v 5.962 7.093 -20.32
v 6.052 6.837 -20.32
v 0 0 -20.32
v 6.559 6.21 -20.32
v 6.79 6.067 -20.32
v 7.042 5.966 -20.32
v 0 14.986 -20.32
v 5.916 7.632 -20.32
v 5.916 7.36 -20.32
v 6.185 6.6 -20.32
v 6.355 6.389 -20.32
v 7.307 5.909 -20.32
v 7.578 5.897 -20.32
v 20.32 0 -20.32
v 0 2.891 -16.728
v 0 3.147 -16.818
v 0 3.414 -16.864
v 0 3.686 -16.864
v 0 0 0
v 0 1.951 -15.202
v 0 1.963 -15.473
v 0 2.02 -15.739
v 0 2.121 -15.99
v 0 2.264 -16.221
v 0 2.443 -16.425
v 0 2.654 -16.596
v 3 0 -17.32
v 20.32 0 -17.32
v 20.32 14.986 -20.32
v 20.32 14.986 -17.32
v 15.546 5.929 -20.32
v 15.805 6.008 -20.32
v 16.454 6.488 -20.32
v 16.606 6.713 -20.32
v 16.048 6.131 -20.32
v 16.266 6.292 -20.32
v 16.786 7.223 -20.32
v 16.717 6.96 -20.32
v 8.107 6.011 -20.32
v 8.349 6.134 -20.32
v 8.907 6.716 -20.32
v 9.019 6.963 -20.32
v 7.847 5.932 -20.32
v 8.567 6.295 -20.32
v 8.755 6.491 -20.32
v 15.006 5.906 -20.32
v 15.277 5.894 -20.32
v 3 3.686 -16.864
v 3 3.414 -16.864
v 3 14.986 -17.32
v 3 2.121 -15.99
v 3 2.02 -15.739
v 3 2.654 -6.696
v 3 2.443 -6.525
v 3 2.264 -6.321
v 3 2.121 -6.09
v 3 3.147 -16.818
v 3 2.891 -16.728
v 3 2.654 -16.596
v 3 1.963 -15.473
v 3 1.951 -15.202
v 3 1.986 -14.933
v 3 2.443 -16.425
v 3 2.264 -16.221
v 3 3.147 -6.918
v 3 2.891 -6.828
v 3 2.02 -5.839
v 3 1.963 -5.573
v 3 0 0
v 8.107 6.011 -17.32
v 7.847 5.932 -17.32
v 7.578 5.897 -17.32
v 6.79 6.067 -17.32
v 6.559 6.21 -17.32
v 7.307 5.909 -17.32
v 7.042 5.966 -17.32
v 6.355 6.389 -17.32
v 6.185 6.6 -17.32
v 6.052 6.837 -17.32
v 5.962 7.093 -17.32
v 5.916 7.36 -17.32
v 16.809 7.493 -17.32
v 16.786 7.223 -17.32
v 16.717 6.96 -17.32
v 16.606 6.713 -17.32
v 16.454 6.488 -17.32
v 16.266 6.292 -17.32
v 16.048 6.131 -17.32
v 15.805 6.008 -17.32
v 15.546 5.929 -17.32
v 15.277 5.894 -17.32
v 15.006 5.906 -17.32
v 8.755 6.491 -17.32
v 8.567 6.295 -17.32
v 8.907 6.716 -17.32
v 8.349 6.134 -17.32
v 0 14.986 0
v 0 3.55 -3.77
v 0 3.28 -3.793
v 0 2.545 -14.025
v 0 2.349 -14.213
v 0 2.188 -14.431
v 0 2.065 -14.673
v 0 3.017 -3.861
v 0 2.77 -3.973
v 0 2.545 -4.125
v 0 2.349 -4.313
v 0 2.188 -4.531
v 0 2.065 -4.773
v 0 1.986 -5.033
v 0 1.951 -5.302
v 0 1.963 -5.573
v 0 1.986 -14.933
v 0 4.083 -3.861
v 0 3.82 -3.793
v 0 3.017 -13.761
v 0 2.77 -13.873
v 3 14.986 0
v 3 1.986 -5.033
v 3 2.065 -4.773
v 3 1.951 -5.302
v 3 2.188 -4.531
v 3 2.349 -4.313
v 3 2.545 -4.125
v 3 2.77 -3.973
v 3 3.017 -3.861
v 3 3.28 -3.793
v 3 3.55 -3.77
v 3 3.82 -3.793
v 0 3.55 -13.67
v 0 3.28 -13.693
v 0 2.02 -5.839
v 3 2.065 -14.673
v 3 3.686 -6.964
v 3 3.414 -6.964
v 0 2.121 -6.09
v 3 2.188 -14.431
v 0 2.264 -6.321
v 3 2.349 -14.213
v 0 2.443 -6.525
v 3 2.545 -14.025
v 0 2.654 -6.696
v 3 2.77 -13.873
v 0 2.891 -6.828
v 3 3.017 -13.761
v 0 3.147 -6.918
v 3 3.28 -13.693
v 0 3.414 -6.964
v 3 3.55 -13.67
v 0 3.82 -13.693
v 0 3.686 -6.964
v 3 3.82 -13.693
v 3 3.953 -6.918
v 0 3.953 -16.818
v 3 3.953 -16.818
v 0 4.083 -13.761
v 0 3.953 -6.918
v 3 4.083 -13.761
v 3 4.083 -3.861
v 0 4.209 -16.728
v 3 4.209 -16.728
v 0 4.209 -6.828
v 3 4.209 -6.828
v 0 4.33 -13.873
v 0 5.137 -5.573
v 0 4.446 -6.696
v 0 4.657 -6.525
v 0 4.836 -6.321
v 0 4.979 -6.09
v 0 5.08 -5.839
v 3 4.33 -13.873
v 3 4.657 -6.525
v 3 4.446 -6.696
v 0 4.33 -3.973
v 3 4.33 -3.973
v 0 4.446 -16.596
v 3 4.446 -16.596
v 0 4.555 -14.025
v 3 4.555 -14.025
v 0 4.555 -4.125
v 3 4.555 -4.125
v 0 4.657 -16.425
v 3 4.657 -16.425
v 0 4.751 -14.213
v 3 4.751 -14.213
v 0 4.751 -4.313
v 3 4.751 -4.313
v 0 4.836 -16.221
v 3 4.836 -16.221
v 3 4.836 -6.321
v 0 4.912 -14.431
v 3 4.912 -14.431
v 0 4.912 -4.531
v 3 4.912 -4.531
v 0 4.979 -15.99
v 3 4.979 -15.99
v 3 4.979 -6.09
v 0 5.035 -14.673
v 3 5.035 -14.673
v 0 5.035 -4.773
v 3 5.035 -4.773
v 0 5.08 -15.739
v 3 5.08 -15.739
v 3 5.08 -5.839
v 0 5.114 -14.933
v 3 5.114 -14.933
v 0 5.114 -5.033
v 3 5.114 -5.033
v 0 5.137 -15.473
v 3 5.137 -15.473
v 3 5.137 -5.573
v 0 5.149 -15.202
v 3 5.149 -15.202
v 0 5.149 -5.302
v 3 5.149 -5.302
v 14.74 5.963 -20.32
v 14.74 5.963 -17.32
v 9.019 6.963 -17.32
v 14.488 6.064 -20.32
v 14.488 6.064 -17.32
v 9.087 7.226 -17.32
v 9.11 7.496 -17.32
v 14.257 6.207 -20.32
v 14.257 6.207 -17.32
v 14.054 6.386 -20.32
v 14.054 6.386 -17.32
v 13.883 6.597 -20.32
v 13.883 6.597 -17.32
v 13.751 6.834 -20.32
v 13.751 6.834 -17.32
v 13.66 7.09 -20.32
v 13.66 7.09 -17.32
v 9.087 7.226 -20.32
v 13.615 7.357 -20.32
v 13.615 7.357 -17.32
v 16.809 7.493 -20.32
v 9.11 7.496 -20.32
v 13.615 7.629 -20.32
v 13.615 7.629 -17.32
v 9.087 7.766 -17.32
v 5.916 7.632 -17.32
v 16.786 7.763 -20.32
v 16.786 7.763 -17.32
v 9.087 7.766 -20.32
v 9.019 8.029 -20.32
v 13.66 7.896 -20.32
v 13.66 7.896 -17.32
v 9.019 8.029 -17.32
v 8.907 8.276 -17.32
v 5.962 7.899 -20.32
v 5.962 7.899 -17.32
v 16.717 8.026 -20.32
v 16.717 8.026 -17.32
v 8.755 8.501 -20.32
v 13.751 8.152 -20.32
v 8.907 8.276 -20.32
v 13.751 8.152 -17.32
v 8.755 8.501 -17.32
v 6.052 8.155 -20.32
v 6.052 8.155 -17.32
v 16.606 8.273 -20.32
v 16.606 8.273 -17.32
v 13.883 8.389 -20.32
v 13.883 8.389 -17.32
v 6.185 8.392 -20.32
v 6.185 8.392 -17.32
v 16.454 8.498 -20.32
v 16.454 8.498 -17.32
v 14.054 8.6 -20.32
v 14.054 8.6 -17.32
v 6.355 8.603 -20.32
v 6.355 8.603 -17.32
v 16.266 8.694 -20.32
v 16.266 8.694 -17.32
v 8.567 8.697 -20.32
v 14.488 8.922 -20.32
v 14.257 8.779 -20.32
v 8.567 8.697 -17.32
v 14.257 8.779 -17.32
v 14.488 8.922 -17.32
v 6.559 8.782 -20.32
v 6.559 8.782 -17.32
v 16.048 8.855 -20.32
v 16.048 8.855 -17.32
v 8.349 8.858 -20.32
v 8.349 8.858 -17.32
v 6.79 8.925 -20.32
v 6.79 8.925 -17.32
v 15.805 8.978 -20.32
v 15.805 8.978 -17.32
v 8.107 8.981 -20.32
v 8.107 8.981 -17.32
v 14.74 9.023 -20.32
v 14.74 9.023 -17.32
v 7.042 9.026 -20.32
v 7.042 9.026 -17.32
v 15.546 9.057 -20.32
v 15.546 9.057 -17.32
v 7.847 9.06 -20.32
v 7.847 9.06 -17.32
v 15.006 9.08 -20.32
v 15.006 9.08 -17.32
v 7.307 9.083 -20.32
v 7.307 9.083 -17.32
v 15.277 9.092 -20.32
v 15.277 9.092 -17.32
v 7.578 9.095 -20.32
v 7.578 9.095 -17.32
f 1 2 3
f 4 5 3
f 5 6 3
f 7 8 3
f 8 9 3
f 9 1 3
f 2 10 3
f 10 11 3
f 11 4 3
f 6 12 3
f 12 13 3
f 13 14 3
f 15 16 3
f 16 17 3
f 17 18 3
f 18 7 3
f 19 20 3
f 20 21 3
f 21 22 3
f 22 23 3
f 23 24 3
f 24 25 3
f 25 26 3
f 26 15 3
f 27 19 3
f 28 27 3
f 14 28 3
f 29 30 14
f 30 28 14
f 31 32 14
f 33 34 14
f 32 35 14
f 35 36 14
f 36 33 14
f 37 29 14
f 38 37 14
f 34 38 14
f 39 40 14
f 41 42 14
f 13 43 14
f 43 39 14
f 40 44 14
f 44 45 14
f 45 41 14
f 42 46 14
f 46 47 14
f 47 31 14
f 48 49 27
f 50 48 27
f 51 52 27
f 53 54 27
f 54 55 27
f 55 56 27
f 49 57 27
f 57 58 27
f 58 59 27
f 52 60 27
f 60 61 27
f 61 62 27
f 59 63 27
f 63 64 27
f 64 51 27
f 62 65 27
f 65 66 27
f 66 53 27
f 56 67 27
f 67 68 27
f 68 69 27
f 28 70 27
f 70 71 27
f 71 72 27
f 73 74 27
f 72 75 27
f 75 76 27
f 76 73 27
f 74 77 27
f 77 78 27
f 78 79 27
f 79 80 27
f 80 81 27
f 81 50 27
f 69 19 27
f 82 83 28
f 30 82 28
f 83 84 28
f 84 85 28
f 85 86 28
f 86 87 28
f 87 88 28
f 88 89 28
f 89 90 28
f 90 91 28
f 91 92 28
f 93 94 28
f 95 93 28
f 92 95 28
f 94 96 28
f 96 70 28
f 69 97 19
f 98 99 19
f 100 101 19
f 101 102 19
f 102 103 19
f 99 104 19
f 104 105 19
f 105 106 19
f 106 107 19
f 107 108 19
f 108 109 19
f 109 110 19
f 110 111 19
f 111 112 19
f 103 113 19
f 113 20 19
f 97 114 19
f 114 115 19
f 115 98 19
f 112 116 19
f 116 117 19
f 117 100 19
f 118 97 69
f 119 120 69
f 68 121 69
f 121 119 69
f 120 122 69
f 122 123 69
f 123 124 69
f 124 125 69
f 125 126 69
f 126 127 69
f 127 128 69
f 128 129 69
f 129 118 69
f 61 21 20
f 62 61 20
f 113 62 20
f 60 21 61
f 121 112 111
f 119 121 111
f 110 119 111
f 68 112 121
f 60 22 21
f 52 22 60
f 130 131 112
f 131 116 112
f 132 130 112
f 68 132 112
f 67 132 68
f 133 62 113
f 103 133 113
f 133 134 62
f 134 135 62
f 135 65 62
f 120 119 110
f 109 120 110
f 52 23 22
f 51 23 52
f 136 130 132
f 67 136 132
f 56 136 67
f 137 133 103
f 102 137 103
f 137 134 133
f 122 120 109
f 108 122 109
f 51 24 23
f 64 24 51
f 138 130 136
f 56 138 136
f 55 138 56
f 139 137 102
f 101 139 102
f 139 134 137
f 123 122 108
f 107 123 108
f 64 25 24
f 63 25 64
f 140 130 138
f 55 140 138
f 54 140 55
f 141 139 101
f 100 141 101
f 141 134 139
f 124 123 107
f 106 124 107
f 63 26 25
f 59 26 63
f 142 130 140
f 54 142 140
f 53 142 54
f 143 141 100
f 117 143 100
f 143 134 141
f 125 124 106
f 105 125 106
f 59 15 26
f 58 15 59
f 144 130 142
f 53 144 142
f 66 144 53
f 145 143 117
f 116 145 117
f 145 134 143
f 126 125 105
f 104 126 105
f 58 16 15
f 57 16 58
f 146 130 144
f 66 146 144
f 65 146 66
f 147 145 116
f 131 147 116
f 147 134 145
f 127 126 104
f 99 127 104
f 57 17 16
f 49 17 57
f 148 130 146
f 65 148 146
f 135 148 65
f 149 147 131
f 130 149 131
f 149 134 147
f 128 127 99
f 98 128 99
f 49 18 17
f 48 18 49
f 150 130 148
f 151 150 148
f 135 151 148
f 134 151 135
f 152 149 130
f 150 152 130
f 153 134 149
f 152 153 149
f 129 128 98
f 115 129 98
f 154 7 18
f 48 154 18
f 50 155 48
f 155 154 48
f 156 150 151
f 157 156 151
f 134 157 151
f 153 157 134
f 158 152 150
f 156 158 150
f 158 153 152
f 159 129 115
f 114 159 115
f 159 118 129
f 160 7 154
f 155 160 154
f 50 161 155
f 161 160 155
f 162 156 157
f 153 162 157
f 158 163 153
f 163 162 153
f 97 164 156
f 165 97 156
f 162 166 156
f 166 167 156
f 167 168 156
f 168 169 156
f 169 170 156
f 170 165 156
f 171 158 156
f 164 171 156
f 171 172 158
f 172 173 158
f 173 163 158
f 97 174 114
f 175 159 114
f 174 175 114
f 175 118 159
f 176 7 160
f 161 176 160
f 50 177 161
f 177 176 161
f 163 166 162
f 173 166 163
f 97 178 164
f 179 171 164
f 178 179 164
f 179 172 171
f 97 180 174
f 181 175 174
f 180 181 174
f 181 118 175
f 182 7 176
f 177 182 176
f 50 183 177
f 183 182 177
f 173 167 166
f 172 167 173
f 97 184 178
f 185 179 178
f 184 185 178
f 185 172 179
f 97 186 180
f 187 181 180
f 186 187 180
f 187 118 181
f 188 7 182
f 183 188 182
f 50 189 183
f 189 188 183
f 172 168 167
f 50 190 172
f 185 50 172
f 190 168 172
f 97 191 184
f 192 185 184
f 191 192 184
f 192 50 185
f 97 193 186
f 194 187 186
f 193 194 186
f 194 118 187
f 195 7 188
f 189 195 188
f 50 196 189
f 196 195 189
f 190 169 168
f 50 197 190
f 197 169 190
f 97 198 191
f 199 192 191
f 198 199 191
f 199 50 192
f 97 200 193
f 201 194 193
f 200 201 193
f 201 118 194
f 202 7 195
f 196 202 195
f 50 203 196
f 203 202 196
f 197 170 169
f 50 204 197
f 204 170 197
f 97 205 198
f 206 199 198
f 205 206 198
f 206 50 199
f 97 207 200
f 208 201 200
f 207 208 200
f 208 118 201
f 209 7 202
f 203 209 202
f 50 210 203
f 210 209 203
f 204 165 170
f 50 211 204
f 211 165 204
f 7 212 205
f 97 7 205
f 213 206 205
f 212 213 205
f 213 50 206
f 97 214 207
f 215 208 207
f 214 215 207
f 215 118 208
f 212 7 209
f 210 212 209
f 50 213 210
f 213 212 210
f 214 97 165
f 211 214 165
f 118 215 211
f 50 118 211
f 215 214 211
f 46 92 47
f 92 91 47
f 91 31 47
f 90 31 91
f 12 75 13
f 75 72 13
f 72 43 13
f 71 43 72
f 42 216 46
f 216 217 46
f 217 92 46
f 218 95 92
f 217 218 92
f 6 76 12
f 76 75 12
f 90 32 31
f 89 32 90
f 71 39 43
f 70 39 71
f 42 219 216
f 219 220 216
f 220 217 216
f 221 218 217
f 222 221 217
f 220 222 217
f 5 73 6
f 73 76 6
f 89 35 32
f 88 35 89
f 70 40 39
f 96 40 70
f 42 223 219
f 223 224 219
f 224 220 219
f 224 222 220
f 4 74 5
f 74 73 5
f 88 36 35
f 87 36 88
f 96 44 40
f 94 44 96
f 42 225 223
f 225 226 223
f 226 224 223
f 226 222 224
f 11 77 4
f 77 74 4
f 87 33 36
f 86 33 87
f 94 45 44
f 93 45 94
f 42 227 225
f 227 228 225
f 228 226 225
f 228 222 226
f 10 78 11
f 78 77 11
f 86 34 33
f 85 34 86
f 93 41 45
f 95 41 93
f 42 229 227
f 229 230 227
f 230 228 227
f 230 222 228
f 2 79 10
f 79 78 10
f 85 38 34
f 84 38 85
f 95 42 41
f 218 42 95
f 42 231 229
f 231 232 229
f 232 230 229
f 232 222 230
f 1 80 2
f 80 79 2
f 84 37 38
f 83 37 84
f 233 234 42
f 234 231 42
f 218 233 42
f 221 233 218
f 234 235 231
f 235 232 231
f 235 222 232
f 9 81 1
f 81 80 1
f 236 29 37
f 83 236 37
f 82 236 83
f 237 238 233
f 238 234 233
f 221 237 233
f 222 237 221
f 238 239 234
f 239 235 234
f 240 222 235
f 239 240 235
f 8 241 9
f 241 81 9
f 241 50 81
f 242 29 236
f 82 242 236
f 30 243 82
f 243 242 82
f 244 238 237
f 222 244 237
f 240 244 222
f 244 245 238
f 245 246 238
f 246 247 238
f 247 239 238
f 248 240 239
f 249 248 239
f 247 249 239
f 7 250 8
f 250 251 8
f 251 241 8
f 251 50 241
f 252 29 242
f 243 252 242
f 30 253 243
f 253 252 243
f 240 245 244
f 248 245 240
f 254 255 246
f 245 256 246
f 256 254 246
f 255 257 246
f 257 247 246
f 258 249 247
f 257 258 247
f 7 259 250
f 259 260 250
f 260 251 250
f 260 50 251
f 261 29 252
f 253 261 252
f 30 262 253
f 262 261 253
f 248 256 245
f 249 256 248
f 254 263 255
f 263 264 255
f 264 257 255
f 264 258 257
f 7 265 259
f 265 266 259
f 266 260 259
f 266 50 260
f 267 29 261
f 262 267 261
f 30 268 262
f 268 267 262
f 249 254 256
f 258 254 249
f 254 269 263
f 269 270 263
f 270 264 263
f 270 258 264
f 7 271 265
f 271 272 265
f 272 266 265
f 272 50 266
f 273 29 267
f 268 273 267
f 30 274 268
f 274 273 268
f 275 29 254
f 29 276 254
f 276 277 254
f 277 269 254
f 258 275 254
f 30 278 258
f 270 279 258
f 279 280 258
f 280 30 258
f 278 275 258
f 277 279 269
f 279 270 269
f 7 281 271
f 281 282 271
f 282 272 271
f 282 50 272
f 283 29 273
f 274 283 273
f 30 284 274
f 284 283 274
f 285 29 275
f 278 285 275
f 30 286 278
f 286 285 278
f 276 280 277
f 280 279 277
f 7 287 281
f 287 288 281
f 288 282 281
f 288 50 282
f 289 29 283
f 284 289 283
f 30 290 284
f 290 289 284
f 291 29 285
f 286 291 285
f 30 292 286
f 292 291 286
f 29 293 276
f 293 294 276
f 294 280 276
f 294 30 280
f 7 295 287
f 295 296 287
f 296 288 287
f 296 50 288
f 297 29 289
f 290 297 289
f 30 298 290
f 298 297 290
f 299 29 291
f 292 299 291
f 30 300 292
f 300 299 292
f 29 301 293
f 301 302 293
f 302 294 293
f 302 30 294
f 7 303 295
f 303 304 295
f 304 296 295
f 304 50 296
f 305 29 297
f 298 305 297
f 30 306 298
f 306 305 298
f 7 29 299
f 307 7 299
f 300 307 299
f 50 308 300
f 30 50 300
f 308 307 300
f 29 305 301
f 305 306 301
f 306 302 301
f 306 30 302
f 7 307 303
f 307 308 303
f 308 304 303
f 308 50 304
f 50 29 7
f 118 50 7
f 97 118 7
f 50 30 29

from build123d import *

# Parameters (mm, degrees)
BOSS_EXTRUDE1_DEPTH = 14.986
SKETCH2_R           = 1.6
CUT_EXTRUDE1_DEPTH  = 25
SKETCH4_R           = 1.6
CUT_EXTRUDE2_DEPTH  = 25


with BuildPart() as part:
    # Sketch1 → Boss-Extrude1 (new body)
    with BuildSketch(Plane(origin=(0, 0, 0), x_dir=(1, 0, 0), z_dir=(0, 1, 0))):
        Polygon((0, 0), (0, 20.32), (20.32, 20.32), (20.32, 17.32), (3, 17.32), (3, 0), align=None)
    extrude(amount=BOSS_EXTRUDE1_DEPTH)

    # Sketch2 → Cut-Extrude1 (cut)
    with BuildSketch(Plane.ZY):
        with Locations((-5.37, 3.55)):
            Circle(SKETCH2_R)
        with Locations((-15.27, 3.55)):
            Circle(SKETCH2_R)
    extrude(amount=-CUT_EXTRUDE1_DEPTH, mode=Mode.SUBTRACT)

    # Sketch4 → Cut-Extrude2 (cut)
    with BuildSketch(Plane.XY.offset(-17.32)):
        with Locations((7.510208413, 7.496)):
            Circle(SKETCH4_R)
        with Locations((15.208779856, 7.493)):
            Circle(SKETCH4_R)
    extrude(amount=-CUT_EXTRUDE2_DEPTH, mode=Mode.SUBTRACT)


solid = part.part
